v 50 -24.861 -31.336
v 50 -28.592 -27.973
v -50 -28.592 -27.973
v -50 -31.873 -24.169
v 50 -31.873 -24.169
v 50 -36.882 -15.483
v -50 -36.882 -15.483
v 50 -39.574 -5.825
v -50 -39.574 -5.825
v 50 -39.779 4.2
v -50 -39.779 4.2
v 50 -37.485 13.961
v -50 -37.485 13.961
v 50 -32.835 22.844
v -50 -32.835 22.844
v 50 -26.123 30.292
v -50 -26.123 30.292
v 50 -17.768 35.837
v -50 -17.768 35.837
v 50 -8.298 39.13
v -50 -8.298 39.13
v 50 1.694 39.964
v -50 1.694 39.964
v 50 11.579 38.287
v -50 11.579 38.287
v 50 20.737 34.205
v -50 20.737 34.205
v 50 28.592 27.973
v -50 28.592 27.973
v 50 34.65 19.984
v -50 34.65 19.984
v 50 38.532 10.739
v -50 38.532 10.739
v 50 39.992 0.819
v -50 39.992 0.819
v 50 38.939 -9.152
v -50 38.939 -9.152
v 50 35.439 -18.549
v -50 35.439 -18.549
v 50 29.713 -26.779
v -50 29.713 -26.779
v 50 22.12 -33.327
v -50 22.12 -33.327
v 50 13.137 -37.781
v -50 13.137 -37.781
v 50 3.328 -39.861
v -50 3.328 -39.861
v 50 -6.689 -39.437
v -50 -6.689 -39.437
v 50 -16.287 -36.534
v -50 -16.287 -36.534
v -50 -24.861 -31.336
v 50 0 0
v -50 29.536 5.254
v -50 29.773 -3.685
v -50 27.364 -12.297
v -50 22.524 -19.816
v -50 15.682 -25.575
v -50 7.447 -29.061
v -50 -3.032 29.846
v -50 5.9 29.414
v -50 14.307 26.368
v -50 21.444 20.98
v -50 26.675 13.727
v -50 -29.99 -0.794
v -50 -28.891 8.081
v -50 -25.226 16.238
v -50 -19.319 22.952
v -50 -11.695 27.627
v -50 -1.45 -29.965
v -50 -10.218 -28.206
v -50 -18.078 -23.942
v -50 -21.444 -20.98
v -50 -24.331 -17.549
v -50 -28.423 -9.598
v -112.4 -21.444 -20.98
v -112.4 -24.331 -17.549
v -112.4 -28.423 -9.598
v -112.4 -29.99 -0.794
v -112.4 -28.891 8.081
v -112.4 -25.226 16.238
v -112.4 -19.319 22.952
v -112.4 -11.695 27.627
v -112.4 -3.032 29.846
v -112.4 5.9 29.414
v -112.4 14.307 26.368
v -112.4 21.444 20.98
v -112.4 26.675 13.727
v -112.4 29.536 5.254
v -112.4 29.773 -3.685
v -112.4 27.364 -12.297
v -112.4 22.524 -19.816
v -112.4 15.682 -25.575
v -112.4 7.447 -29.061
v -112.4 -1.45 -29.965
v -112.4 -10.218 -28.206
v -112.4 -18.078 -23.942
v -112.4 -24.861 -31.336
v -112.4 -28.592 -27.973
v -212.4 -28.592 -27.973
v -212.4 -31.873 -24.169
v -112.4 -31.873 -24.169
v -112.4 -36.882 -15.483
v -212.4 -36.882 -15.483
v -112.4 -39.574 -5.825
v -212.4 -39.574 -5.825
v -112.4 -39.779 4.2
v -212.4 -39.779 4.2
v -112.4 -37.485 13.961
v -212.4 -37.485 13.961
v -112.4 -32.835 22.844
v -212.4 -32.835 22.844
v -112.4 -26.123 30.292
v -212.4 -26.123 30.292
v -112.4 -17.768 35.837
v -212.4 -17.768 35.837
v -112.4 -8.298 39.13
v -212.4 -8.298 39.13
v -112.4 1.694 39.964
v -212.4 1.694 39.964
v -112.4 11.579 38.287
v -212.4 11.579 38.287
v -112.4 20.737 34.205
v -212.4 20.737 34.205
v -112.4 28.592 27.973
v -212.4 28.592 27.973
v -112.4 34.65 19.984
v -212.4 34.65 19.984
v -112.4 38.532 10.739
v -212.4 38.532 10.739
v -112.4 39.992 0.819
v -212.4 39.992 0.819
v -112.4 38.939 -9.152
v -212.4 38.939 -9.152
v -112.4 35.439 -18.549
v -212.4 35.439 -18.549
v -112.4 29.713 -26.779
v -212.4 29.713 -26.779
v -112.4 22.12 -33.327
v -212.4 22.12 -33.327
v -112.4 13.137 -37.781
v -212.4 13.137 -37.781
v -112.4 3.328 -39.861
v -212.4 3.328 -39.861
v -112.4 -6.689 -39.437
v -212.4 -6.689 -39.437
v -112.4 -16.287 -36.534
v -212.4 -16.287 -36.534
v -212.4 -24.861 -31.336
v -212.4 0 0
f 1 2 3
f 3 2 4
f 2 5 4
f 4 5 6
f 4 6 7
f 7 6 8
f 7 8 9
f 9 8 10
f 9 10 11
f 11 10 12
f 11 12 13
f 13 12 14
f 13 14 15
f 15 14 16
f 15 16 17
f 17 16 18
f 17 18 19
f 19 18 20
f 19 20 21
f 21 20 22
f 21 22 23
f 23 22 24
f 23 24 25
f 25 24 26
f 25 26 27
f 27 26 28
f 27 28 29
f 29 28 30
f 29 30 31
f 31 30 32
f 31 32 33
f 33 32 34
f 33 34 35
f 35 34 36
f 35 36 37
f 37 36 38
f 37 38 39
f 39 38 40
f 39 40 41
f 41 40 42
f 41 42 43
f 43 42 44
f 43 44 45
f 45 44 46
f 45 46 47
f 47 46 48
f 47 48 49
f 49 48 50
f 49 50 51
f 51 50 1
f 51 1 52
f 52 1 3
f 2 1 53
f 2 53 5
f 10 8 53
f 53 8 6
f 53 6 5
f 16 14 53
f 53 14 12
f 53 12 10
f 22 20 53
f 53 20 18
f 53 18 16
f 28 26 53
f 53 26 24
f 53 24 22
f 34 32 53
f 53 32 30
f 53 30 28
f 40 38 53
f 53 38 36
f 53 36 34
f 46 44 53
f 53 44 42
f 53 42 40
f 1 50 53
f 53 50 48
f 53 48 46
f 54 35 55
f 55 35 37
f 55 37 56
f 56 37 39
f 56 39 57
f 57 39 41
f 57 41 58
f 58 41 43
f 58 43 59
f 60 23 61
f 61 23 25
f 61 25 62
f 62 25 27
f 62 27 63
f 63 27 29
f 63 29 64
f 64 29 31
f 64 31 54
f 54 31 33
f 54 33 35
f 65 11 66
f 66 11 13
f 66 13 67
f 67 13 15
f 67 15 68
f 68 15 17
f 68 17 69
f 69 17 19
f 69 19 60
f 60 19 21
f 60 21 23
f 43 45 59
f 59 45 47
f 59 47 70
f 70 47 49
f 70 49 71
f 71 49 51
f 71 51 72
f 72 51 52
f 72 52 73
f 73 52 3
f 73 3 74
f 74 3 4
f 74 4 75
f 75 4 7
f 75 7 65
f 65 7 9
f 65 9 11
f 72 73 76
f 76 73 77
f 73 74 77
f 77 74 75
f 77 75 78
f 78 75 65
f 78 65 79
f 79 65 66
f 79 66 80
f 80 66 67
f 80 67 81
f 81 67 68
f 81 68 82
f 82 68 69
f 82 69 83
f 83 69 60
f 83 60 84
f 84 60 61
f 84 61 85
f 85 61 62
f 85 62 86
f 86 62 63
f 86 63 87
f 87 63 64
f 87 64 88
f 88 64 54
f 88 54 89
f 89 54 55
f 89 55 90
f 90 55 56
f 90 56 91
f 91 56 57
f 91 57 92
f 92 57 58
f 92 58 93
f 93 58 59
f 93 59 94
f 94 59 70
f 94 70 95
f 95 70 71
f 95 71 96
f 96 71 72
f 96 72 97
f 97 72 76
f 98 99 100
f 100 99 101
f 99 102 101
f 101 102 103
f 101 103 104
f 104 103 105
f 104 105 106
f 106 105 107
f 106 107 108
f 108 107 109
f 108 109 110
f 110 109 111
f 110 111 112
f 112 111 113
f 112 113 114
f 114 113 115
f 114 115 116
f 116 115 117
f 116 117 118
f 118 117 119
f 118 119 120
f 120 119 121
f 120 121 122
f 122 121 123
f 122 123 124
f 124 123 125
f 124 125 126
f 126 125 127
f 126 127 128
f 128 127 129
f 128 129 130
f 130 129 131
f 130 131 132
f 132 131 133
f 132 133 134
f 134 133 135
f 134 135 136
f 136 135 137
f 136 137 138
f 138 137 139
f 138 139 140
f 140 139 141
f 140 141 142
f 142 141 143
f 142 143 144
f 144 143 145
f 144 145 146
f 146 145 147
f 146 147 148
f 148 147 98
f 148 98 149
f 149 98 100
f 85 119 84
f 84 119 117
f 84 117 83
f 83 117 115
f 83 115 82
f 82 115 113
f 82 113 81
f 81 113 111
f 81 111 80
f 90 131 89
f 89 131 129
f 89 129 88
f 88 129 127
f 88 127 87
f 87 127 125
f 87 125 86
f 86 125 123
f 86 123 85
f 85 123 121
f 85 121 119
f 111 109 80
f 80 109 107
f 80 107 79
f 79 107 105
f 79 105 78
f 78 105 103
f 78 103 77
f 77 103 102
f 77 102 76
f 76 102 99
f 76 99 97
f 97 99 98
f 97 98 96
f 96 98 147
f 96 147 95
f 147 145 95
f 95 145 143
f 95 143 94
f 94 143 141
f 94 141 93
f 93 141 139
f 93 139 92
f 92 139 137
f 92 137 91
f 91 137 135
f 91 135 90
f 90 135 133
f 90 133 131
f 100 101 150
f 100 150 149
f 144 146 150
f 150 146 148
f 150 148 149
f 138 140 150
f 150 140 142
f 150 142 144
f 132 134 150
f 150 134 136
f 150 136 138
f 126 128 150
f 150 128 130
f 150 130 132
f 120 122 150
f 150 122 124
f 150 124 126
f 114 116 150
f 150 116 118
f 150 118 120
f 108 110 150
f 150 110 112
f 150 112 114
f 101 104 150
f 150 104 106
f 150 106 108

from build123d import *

# Parameters (mm, degrees)
SKETCH_1_R      = 40
EXTRUDE_1_DEPTH = 50
SKETCH_2_R      = 40
EXTRUDE_2_DEPTH = 50
SKETCH_3_R      = 30
EXTRUDE_3_DEPTH = 62.4


with BuildPart() as part:
    # 草图1 → 凸台-拉伸1 (new, symmetric)
    with BuildSketch(Plane(origin=(0, 0, 0), x_dir=(0, 0, -1), z_dir=(1, 0, 0))):
        Circle(SKETCH_1_R)
    extrude(amount=EXTRUDE_1_DEPTH, both=True)



with BuildPart() as body_2:
    # 草图2 → 凸台-拉伸2 (new, symmetric)
    with BuildSketch(Plane(origin=(-162.4, 0, 0), x_dir=(0, 0, -1), z_dir=(1, 0, 0))):
        Circle(SKETCH_2_R)
    extrude(amount=EXTRUDE_2_DEPTH, both=True)


with BuildPart() as part_1:
    add(part.part)

    add(body_2.part)  # 凸台-拉伸3 merges body 2
    # 草图3 → 凸台-拉伸3 (add)
    with BuildSketch(Plane(origin=(-112.4, 0, 0), x_dir=(0, 0, -1), z_dir=(1, 0, 0))):
        Circle(SKETCH_3_R)
    extrude(amount=EXTRUDE_3_DEPTH)


solid = part_1.part
